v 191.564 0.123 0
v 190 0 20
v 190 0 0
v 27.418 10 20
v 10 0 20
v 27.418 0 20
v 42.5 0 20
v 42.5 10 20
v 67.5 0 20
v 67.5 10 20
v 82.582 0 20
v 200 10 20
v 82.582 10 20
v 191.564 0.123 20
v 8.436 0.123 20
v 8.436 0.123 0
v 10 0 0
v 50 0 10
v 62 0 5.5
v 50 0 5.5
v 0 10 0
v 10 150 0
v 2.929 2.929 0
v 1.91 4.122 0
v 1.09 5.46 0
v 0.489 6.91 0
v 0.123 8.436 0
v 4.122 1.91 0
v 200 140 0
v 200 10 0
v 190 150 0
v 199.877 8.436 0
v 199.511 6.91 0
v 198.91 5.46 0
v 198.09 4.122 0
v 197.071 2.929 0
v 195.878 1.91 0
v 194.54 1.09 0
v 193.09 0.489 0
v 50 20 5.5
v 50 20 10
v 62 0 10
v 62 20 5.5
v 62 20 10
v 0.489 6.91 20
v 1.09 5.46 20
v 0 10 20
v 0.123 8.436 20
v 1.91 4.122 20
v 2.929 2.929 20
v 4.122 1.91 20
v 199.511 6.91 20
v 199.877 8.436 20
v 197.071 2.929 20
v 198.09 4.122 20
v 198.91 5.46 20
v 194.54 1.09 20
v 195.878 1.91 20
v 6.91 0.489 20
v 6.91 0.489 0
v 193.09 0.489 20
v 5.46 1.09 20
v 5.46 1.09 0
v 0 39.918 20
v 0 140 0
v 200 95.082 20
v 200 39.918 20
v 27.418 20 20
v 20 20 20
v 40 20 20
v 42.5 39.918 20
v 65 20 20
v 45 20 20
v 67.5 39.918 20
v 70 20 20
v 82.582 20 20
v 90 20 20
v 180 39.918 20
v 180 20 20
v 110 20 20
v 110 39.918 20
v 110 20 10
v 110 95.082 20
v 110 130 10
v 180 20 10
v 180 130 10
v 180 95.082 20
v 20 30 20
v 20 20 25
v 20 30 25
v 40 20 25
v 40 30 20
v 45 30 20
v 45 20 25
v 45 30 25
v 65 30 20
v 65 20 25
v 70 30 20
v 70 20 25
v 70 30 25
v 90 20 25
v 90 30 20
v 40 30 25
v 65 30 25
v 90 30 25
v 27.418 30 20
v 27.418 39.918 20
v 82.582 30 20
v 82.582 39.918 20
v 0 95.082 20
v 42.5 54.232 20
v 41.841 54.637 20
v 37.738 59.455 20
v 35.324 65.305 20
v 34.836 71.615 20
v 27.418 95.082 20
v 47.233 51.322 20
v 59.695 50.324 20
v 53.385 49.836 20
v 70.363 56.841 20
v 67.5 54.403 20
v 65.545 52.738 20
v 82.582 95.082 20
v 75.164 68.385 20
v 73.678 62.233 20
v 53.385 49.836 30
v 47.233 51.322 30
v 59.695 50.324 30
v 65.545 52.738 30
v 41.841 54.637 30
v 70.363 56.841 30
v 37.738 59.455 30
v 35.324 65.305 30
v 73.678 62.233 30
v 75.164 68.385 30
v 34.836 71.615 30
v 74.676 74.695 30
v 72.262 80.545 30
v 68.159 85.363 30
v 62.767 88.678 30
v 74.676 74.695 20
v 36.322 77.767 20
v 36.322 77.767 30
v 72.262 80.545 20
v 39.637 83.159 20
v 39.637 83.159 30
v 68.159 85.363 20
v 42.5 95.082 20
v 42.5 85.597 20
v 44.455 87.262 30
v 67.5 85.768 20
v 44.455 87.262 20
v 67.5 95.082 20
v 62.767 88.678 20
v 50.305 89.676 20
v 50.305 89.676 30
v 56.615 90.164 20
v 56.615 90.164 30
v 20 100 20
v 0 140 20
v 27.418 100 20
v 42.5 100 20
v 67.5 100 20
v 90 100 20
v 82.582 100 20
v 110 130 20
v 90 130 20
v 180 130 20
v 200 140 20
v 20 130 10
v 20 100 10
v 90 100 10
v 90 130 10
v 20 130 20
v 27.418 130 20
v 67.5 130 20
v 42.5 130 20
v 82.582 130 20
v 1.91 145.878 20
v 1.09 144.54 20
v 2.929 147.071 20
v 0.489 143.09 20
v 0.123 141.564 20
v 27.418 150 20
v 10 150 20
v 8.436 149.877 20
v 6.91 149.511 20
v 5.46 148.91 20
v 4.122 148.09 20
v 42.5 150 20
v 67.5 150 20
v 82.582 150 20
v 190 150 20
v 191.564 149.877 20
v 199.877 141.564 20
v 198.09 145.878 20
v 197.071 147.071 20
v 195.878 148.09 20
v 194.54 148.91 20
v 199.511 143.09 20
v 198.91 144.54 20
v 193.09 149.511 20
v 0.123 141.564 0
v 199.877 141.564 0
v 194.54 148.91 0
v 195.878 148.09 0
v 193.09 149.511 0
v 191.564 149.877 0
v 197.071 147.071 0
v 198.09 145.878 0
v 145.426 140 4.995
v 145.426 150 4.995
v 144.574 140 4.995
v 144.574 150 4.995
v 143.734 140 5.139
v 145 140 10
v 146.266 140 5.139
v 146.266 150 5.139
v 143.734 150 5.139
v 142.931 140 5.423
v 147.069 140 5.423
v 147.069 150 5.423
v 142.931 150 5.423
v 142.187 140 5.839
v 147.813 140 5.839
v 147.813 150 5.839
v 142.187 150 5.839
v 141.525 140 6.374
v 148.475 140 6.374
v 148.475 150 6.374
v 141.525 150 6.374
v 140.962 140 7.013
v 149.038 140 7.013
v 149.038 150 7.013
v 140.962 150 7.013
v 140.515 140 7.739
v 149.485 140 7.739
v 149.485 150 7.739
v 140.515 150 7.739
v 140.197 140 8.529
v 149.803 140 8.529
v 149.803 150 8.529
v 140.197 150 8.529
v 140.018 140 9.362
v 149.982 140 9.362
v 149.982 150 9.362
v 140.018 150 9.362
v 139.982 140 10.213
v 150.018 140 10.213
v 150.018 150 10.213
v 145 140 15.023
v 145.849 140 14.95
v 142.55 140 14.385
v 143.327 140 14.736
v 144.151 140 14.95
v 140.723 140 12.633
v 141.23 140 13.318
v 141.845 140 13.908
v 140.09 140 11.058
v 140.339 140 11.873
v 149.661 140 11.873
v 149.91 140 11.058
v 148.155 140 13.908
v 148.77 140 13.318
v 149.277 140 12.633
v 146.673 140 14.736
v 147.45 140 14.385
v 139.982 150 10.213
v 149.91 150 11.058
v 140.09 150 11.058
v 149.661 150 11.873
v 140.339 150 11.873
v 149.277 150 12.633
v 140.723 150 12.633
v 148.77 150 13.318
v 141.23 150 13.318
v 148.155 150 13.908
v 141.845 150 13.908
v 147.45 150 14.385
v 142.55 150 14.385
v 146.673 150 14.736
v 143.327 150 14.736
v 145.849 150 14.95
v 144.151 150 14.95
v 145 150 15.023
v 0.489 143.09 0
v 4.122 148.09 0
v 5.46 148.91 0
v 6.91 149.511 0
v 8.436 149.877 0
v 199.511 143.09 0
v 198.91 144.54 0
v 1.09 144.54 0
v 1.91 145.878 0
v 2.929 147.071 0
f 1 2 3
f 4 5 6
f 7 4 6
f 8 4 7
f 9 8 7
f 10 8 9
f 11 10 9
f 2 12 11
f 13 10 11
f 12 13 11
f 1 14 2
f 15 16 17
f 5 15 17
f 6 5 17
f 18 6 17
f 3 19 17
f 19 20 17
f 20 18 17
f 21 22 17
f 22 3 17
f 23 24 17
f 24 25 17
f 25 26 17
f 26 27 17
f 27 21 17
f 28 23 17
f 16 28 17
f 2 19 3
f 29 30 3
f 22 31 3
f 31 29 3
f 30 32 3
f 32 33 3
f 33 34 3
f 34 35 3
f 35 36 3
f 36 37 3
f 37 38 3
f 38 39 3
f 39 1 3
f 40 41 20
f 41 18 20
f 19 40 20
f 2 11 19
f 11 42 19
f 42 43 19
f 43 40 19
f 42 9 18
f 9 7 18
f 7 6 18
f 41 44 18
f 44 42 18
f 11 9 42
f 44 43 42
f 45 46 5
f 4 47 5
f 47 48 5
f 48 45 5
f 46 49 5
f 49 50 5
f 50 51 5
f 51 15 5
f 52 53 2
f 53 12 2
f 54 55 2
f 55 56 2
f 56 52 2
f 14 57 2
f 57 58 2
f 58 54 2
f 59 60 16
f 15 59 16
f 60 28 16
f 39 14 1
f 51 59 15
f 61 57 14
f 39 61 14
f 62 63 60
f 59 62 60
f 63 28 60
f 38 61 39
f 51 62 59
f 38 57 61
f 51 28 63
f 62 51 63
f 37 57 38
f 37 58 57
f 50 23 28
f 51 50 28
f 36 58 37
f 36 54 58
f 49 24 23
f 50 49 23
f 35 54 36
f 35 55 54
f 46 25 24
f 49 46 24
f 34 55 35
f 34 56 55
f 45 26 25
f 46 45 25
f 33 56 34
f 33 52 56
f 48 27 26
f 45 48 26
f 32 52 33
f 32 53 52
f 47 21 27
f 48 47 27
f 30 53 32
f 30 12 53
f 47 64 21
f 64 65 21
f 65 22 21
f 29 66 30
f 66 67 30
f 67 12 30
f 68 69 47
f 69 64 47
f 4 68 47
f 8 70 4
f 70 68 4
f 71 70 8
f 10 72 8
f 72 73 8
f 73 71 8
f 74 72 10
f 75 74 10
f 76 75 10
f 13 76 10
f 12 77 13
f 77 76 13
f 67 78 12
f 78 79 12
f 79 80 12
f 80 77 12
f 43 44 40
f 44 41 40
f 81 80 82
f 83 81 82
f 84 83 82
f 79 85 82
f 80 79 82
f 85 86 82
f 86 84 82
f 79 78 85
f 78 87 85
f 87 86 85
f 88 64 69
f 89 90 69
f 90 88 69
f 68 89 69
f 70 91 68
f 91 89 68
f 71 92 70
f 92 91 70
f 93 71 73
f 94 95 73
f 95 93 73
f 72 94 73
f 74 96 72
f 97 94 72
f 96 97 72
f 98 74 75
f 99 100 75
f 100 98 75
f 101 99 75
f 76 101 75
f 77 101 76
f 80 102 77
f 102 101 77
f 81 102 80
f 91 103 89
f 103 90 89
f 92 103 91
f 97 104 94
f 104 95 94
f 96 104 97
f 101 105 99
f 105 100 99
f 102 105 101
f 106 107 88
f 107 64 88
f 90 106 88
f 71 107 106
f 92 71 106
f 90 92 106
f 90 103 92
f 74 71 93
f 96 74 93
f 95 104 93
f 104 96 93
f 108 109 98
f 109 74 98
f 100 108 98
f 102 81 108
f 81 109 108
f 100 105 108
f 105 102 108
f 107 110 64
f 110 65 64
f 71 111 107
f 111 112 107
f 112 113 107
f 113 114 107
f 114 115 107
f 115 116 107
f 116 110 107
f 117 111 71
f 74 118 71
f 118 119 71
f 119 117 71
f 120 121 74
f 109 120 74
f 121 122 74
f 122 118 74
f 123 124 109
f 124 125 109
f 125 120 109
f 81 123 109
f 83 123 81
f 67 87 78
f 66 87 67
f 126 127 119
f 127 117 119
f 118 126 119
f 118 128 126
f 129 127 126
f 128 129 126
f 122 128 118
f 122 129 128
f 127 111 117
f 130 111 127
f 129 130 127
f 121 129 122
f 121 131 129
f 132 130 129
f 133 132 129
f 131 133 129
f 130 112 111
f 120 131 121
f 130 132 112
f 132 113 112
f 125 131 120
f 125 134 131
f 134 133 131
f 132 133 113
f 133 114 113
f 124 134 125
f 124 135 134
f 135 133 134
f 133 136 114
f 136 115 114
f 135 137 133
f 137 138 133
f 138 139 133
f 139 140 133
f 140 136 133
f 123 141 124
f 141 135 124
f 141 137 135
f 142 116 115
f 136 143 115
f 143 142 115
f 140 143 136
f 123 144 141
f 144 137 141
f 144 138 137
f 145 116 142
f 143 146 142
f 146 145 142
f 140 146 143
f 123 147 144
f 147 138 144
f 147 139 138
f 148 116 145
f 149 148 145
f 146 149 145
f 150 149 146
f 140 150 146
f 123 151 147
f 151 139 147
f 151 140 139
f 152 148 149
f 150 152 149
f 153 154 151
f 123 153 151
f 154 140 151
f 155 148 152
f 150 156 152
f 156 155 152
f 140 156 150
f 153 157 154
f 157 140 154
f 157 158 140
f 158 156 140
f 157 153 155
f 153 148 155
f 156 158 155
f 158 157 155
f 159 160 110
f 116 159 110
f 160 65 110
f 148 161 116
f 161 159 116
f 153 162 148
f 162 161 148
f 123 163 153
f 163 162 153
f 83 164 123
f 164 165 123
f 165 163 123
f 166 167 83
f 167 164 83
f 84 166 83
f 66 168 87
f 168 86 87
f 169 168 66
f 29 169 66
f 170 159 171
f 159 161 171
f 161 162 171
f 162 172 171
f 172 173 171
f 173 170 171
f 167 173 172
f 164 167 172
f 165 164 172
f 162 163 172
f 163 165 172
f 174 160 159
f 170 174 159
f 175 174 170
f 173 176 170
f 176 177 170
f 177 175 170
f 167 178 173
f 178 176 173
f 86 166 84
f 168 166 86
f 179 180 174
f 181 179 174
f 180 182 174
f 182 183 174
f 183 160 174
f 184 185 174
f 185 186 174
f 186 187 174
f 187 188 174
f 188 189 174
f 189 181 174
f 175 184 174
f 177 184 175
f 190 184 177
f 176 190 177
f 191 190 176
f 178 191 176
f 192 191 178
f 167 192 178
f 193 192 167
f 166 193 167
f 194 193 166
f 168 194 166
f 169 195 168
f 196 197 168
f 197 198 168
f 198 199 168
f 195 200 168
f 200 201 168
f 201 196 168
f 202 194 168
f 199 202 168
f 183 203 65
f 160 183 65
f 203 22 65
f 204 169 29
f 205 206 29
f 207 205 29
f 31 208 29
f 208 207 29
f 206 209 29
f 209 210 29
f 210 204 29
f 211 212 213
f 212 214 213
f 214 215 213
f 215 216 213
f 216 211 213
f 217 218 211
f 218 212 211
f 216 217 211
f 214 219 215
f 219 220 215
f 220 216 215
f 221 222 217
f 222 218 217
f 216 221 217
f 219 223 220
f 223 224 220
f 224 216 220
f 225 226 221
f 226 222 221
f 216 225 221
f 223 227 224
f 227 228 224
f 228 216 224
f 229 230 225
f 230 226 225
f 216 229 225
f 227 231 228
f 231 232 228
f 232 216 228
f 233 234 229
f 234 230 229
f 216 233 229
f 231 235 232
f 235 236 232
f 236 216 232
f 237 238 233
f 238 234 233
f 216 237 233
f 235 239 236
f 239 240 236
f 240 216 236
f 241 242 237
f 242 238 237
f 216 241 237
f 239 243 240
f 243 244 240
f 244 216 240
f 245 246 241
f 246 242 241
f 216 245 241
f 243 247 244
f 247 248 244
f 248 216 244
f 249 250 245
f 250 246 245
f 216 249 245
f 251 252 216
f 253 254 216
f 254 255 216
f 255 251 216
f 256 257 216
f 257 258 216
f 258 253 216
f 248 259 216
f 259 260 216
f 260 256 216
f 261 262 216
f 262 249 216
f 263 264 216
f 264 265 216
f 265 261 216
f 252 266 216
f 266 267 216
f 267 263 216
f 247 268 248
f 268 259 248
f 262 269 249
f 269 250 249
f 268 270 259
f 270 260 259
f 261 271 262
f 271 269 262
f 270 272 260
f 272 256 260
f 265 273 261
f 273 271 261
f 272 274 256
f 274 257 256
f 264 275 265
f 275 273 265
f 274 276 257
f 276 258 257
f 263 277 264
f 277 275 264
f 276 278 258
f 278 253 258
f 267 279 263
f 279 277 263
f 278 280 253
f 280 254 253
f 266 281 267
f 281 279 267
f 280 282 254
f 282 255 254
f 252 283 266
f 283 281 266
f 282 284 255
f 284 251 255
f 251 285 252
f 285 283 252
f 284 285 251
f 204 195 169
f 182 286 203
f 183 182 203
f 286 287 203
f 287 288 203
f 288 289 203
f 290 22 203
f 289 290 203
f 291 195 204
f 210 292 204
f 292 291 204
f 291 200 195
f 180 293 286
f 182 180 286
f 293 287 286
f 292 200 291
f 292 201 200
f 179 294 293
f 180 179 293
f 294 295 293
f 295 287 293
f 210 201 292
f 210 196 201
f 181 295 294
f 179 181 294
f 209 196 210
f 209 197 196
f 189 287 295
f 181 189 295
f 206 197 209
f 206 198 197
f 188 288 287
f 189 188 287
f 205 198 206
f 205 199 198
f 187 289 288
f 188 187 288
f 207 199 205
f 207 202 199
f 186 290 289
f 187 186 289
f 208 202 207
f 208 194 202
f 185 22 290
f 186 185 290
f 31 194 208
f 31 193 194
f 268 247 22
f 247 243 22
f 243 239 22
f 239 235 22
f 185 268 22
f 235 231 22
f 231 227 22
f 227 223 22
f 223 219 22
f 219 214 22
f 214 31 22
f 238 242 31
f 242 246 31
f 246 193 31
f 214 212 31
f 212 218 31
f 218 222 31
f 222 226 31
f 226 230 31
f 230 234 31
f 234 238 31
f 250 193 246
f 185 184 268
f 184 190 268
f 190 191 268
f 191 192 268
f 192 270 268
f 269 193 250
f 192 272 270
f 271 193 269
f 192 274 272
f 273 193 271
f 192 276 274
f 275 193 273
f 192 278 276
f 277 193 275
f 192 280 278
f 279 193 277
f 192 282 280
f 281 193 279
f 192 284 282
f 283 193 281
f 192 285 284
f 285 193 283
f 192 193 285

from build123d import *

# Parameters (mm, degrees)
BOSS_EXTRUDE1_DEPTH = 20
SKETCH2_W           = 70
SKETCH2_H           = 110
SKETCH2_H_2         = 30
CUT_EXTRUDE1_DEPTH  = 10
SKETCH3_R           = 5.022739635
CUT_EXTRUDE2_DEPTH  = 10
SKETCH4_W           = 12
SKETCH4_H           = 4.5
CUT_EXTRUDE3_DEPTH  = 20
BOSS_EXTRUDE3_DEPTH = 10
SKETCH6_W           = 20
SKETCH6_H           = 10
BOSS_EXTRUDE4_DEPTH = 5


with BuildPart() as part:
    # Sketch1 → Boss-Extrude1 (new body)
    with BuildSketch(Plane.XY):
        with BuildLine():
            Line((10, 0), (190, 0))
            ThreePointArc((190, 0), (197.071067812, 2.928932188), (200, 10))
            Line((200, 10), (200, 140))
            ThreePointArc((200, 140), (197.071067812, 147.071067812), (190, 150))
            Line((190, 150), (10, 150))
            ThreePointArc((10, 150), (2.928932188, 147.071067812), (0, 140))
            Line((0, 140), (0, 10))
            ThreePointArc((0, 10), (2.928932188, 2.928932188), (10, 0))
        make_face()
    extrude(amount=BOSS_EXTRUDE1_DEPTH)

    # Sketch2 → Cut-Extrude1 (cut)
    with BuildSketch(Plane.XY.offset(20)):
        with Locations((145, 75)):
            Rectangle(SKETCH2_W, SKETCH2_H)
        with Locations((55, 115)):
            Rectangle(SKETCH2_W, SKETCH2_H_2)
    extrude(amount=-CUT_EXTRUDE1_DEPTH, mode=Mode.SUBTRACT)

    # Sketch3 → Cut-Extrude2 (cut)
    with BuildSketch(Plane(origin=(0, 150, 0), x_dir=(1, 0, 0), z_dir=(0, 1, 0))):
        with Locations(Location((145, -10, 0), (0, 0, 270))):
            Circle(SKETCH3_R)
    extrude(amount=-CUT_EXTRUDE2_DEPTH, mode=Mode.SUBTRACT)

    # Sketch4 → Cut-Extrude3 (cut)
    with BuildSketch(Plane.XZ):
        with Locations((56, 7.75)):
            Rectangle(SKETCH4_W, SKETCH4_H)
    extrude(amount=-CUT_EXTRUDE3_DEPTH, mode=Mode.SUBTRACT)

    # Sketch5 → Boss-Extrude3 (add)
    with BuildSketch(Plane.XY.offset(20)):
        Polygon((68.158579738, 85.363225843), (62.767055131, 88.67752081), (56.615237052, 90.163529906), (50.305308316, 89.675792208), (44.454928712, 87.262050879), (39.636774157, 83.158579738), (36.32247919, 77.767055131), (34.836470094, 71.615237052), (35.324207792, 65.305308316), (37.737949121, 59.454928712), (41.841420262, 54.636774157), (47.232944869, 51.32247919), (53.384762948, 49.836470094), (59.694691684, 50.324207792), (65.545071288, 52.737949121), (70.363225843, 56.841420262), (73.67752081, 62.232944869), (75.163529906, 68.384762948), (74.675792208, 74.694691684), (72.262050879, 80.545071288), align=None)
    extrude(amount=BOSS_EXTRUDE3_DEPTH)

    # Sketch6 → Boss-Extrude4 (add)
    with BuildSketch(Plane.XY.offset(20)):
        with Locations((30, 25)):
            Rectangle(SKETCH6_W, SKETCH6_H)
        with Locations((55, 25)):
            Rectangle(SKETCH6_W, SKETCH6_H)
        with Locations((80, 25)):
            Rectangle(SKETCH6_W, SKETCH6_H)
    extrude(amount=BOSS_EXTRUDE4_DEPTH)


solid = part.part
